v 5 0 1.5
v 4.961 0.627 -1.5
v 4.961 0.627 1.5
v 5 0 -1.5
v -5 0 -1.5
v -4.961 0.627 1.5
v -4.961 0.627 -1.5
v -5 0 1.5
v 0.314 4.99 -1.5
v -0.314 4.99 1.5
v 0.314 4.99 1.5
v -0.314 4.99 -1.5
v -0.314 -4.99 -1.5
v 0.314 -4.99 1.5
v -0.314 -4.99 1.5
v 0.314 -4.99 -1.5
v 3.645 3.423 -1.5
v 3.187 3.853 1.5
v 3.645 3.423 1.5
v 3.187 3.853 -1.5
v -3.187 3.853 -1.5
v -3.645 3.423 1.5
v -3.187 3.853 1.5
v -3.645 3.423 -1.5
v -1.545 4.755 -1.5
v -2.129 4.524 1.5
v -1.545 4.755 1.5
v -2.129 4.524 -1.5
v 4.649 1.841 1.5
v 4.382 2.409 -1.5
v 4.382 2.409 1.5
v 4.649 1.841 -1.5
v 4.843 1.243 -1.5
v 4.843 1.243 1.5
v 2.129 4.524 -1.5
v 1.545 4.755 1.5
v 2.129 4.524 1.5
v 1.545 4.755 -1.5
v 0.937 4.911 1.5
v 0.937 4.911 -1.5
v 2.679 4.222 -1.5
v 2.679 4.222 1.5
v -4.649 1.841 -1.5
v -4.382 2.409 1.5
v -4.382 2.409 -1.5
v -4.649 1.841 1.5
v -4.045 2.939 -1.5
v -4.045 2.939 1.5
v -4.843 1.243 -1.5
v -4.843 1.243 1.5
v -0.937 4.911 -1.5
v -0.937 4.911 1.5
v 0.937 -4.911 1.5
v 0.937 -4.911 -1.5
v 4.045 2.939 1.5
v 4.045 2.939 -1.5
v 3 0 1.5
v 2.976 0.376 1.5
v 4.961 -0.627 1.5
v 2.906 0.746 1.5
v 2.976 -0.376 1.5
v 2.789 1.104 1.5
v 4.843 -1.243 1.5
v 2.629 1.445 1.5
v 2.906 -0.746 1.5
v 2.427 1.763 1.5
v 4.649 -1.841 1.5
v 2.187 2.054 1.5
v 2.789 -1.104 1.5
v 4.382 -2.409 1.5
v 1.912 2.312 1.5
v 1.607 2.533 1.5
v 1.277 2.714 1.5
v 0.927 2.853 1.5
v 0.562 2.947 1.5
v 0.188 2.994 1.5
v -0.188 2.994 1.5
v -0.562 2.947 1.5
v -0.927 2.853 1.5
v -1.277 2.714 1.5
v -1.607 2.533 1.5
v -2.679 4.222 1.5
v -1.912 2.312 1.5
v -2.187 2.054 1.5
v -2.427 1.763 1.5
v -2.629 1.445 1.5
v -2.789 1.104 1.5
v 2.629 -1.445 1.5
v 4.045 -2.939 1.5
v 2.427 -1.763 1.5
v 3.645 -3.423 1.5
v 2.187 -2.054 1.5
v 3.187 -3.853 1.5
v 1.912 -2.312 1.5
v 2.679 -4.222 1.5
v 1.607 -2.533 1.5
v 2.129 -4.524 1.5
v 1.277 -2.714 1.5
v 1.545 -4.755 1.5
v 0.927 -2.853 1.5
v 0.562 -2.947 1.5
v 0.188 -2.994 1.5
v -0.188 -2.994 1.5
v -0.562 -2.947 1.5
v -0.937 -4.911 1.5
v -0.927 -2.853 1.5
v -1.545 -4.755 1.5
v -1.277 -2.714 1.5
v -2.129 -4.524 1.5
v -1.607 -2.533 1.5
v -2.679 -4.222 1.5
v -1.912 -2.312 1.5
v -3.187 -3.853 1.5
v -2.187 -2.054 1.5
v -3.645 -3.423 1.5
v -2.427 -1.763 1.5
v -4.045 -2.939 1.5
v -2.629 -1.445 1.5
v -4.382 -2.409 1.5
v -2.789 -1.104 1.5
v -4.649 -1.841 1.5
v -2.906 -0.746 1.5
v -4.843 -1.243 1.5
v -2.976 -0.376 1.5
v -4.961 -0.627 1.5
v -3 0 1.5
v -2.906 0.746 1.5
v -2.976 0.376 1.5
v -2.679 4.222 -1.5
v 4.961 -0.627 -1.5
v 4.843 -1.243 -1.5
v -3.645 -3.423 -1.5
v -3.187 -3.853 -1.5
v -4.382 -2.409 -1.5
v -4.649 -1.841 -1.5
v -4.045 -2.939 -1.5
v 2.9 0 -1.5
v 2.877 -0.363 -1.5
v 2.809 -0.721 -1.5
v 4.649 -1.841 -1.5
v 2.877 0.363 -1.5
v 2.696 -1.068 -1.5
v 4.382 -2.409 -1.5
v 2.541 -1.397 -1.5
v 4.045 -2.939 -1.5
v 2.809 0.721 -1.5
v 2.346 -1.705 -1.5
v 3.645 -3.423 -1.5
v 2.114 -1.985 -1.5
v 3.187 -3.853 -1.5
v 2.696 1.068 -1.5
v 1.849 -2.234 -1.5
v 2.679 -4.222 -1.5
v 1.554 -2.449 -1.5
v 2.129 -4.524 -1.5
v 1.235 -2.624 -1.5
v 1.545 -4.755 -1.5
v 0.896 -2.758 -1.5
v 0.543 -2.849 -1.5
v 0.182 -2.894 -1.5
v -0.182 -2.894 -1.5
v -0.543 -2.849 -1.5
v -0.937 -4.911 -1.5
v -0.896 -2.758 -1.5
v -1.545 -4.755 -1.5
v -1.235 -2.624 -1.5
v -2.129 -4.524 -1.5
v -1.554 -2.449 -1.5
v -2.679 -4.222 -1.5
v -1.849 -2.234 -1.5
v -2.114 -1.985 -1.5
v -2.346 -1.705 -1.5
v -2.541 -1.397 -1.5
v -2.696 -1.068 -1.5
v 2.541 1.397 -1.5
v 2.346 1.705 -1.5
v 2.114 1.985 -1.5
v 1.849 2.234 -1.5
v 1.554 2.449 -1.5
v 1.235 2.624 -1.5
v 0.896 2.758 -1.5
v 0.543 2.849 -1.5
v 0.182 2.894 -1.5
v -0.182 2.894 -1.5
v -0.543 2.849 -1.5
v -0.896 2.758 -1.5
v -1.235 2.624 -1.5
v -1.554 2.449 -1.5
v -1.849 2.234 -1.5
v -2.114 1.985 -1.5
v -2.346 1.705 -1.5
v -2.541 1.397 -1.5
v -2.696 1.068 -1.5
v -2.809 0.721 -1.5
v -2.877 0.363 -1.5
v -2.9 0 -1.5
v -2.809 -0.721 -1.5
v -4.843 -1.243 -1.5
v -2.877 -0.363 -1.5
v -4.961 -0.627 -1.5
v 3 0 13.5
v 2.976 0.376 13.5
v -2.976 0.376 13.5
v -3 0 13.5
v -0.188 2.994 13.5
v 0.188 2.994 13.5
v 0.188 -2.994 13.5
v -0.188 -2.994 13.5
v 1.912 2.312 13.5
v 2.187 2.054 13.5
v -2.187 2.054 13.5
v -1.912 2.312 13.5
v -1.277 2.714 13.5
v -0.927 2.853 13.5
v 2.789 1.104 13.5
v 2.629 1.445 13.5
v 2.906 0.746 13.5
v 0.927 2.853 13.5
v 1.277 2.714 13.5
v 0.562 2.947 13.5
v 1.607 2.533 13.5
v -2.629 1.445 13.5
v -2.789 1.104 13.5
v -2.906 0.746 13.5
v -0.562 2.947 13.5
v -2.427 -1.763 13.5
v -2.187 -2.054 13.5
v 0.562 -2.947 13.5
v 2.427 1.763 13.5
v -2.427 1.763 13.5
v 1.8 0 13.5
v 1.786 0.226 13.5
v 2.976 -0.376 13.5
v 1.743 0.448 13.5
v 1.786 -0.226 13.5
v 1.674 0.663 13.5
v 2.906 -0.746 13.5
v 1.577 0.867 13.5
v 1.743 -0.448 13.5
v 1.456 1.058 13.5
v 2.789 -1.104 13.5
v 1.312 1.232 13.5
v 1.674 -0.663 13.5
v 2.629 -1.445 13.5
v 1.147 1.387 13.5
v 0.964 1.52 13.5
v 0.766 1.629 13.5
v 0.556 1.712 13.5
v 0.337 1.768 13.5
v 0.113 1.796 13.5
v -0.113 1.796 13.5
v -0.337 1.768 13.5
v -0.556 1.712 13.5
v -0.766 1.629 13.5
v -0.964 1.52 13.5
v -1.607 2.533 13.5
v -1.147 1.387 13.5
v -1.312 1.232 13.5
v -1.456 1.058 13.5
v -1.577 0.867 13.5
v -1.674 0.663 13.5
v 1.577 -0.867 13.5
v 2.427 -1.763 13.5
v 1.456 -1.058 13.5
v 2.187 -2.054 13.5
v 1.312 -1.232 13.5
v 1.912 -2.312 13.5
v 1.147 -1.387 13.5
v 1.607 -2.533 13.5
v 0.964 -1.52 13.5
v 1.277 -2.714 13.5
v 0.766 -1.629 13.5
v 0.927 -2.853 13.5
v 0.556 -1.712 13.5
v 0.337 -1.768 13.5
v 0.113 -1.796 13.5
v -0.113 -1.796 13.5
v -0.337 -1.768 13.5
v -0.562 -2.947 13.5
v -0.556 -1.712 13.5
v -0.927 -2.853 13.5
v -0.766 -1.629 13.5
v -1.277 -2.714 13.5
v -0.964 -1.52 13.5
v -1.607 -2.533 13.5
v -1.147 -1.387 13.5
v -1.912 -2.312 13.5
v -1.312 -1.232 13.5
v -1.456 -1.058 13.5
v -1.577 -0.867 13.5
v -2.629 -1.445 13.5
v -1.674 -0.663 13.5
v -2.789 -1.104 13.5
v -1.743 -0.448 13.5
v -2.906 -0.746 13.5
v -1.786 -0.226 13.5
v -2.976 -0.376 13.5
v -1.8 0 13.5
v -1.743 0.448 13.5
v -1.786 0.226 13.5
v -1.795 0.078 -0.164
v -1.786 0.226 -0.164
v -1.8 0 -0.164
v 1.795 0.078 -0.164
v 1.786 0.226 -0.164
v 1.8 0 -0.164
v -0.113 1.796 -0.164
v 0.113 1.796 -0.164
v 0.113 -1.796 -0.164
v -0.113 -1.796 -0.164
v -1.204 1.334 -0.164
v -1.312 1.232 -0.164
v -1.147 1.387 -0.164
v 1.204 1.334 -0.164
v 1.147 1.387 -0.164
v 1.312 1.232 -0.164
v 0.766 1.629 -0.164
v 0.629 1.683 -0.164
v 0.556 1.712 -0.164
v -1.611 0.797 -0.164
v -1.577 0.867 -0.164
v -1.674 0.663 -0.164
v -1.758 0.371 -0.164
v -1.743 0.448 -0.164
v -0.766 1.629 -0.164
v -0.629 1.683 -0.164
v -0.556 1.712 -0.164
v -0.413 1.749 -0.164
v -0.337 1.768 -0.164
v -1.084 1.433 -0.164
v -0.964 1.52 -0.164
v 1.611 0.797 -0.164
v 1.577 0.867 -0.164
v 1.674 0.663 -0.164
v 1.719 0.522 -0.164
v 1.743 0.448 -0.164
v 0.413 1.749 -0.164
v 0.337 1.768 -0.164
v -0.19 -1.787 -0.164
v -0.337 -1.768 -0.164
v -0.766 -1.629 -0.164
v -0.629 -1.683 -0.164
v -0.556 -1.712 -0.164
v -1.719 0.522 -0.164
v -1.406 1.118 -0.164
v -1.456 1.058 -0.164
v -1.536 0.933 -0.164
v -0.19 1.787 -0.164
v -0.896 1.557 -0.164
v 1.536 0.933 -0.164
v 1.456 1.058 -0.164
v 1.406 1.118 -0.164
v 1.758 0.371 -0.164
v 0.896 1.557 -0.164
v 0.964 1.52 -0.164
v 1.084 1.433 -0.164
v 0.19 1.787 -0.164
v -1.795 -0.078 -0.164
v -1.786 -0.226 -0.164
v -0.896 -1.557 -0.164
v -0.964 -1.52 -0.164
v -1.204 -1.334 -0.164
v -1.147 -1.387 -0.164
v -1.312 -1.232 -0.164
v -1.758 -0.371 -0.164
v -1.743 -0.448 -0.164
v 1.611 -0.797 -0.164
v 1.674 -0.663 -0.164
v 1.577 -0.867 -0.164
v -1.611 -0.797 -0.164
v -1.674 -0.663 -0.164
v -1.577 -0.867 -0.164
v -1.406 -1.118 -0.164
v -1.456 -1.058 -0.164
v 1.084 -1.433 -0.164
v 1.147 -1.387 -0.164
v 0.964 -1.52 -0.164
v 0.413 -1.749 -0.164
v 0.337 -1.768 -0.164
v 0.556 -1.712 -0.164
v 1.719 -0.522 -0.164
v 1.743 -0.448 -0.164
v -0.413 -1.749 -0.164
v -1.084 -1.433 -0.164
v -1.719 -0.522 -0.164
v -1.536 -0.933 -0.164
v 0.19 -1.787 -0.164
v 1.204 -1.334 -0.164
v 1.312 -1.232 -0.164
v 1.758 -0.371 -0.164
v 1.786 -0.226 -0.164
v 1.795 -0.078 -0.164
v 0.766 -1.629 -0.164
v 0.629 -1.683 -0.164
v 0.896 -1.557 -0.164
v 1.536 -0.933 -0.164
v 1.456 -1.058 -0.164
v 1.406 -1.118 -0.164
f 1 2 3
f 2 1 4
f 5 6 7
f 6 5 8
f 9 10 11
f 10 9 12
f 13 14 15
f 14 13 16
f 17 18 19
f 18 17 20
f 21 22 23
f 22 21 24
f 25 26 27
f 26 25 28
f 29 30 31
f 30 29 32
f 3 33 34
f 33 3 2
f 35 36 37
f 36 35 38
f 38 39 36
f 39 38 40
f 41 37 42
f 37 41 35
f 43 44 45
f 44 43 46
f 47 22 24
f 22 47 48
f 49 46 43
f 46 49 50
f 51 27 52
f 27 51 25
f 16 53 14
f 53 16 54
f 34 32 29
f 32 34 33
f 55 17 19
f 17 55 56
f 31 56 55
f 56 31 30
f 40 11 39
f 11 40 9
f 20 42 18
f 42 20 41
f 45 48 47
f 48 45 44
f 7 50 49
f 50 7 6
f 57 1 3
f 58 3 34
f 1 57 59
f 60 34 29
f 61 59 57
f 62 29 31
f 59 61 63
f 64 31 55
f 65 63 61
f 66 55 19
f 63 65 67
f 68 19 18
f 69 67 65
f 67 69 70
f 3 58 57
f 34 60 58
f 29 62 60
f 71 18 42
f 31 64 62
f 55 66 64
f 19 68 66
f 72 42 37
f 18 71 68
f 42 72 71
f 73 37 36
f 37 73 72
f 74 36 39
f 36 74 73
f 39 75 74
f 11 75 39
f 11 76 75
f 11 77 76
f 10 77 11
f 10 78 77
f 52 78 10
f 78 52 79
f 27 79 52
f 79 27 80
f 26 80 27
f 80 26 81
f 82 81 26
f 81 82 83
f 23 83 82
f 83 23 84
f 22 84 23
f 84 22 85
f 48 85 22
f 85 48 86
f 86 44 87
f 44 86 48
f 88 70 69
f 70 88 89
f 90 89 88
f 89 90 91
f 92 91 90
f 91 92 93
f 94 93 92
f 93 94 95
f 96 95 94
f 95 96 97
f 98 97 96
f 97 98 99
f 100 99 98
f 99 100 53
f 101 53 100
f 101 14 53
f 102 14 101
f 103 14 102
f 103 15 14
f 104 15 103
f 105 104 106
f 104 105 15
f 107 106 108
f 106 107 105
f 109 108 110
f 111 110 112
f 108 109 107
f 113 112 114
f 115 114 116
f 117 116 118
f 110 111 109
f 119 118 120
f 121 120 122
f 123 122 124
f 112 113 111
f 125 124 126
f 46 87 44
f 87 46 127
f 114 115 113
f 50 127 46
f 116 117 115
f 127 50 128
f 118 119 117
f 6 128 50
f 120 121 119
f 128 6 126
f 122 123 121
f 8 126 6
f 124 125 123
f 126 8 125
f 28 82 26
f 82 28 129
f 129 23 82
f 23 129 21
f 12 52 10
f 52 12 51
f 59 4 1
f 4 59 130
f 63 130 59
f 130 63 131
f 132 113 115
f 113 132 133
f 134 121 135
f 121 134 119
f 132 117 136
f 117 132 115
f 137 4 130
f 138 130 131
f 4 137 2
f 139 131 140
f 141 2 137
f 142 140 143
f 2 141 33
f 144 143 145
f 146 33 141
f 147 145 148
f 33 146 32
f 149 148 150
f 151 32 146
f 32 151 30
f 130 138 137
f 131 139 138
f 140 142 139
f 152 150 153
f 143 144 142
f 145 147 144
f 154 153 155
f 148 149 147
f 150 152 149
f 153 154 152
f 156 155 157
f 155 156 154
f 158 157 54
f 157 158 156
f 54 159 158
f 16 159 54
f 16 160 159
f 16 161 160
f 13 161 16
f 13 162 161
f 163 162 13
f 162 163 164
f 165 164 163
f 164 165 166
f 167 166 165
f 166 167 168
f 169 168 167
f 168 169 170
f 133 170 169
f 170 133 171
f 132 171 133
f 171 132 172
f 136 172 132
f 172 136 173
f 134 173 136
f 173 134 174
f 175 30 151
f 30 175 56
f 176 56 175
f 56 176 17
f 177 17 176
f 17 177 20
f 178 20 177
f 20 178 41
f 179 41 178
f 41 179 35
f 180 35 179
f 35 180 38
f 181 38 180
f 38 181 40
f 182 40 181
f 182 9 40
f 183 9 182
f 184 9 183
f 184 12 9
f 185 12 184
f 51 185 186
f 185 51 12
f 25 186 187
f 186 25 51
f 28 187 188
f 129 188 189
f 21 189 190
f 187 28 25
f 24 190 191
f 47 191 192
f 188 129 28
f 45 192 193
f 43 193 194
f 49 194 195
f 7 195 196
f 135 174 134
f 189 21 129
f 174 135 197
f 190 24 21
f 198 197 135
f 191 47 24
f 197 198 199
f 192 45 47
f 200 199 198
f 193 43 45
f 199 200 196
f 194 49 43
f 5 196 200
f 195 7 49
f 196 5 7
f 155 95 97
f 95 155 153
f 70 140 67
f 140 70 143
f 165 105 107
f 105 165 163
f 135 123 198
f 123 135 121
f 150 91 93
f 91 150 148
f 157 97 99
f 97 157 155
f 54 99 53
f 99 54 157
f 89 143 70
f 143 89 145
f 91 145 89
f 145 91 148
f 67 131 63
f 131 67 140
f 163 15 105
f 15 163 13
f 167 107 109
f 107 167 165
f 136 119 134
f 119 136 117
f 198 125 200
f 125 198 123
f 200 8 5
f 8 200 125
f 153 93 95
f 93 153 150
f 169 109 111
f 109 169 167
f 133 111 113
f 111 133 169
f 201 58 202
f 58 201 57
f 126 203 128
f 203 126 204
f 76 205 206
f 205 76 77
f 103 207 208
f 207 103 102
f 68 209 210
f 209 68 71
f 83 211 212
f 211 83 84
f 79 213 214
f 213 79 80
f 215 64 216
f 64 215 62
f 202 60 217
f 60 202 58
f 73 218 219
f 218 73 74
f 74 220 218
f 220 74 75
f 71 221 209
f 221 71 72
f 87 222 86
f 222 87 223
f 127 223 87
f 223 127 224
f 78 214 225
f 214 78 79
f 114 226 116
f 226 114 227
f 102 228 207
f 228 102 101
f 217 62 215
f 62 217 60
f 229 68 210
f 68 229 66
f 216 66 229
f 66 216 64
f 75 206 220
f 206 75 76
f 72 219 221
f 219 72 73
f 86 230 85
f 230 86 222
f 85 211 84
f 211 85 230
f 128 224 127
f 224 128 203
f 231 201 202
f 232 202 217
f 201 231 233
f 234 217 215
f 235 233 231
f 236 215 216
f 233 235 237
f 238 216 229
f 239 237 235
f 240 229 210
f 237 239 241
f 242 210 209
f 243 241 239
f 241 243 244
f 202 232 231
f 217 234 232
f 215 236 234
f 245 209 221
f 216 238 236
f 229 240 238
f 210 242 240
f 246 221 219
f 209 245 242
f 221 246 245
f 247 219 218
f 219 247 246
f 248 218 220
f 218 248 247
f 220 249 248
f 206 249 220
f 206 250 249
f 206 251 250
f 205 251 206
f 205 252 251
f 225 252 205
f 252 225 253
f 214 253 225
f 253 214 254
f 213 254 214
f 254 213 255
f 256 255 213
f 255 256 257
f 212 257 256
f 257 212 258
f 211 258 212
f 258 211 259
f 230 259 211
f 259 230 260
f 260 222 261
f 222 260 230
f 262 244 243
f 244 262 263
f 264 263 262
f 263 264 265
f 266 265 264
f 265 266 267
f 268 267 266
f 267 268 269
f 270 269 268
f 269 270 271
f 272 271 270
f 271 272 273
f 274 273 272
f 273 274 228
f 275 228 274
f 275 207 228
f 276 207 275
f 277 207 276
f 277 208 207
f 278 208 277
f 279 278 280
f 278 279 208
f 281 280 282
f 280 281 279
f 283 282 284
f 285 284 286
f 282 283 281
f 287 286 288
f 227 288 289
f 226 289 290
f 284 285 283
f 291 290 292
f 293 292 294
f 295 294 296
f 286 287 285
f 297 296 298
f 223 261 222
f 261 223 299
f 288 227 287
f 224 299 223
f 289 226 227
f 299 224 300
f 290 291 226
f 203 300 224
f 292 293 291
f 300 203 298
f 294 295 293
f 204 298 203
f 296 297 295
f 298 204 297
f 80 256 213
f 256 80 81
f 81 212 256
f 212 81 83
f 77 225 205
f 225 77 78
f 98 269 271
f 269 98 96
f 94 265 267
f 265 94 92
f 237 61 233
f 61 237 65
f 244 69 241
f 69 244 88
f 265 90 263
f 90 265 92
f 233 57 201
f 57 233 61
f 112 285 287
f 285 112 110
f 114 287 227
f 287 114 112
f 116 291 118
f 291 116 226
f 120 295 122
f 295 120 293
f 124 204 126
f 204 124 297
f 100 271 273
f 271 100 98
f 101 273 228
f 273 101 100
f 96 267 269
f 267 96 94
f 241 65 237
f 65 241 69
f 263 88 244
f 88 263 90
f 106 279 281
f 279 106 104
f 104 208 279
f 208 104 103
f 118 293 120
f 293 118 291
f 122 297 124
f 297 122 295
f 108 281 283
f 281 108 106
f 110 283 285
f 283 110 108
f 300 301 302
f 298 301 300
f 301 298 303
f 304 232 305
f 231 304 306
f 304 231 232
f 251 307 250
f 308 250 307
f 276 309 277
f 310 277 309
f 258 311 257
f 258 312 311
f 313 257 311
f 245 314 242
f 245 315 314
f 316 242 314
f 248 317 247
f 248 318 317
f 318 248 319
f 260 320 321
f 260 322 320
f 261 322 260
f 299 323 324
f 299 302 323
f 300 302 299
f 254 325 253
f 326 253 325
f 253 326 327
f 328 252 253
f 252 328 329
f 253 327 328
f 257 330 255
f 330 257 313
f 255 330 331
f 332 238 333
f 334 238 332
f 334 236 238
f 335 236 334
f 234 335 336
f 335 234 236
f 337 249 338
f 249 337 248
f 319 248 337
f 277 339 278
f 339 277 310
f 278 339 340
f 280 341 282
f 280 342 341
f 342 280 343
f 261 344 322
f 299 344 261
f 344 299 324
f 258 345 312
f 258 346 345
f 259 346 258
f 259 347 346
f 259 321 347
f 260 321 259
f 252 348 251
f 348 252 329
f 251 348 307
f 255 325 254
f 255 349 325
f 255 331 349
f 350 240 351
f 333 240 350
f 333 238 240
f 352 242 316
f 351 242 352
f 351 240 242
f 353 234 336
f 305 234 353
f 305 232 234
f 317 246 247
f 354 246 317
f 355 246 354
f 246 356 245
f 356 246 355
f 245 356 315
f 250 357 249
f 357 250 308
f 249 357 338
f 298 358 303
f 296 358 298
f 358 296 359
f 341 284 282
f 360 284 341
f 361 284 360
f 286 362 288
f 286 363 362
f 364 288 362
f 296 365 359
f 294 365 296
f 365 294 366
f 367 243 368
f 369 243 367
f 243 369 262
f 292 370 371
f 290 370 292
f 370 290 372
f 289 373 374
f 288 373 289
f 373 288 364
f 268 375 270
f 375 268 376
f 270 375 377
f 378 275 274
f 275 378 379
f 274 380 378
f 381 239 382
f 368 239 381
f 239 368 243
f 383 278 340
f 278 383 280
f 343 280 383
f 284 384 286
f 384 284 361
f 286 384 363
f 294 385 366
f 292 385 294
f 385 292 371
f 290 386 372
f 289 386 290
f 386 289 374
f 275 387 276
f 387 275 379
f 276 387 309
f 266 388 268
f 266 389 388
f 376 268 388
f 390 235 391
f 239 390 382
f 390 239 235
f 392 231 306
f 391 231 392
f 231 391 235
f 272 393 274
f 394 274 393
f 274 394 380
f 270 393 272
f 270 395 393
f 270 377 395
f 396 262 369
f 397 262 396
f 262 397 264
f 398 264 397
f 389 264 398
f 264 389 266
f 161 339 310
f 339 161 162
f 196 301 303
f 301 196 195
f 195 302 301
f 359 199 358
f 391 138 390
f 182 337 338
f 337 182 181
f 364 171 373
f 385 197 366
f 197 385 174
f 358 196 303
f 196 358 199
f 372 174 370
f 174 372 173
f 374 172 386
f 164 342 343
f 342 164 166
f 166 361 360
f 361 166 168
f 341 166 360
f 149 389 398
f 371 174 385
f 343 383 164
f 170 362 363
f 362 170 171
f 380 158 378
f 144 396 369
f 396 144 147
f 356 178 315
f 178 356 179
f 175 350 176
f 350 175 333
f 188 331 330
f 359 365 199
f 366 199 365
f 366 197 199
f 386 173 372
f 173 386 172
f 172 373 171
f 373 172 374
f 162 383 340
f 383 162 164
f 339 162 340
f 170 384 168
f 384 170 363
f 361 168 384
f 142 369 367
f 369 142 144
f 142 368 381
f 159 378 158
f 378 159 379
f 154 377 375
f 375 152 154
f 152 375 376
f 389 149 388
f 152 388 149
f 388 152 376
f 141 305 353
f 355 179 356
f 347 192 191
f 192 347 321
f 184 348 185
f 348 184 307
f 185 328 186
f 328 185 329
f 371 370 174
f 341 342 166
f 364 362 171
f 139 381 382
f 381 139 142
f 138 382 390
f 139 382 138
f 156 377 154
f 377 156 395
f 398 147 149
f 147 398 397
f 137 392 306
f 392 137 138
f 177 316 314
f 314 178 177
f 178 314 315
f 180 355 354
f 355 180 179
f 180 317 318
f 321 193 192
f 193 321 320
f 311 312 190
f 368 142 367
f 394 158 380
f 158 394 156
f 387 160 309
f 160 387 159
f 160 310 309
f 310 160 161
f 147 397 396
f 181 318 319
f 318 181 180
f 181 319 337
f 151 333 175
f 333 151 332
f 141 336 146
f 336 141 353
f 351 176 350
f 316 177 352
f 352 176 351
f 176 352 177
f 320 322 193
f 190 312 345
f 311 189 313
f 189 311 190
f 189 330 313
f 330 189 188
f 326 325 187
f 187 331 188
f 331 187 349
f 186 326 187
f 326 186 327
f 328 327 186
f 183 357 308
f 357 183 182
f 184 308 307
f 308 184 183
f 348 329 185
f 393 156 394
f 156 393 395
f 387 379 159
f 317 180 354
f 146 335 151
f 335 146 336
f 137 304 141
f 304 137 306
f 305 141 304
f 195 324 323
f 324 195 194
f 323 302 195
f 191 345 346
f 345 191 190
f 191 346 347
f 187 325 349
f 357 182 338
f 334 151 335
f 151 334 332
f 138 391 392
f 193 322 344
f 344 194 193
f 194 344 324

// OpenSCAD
$fn = 50;


difference() {
	union() {
		translate(v = [0, 0, -1.5000000000]) {
			cylinder(h = 3, r = 5.0000000000);
		}
		translate(v = [0, 0, -1.5000000000]) {
			cylinder(h = 15, r = 3.0000000000);
		}
	}
	union() {
		translate(v = [0, 0, -1.5000000000]) {
			rotate(a = [0, 180, 0]) {
				difference() {
					union() {
						translate(v = [0, 0, -15.0000000000]) {
							cylinder(h = 15, r = 1.5000000000);
						}
						translate(v = [0, 0, -15.0000000000]) {
							cylinder(h = 15, r = 1.8000000000);
						}
						translate(v = [0, 0, -1.7000000000]) {
							cylinder(h = 1.7000000000, r1 = 1.5000000000, r2 = 2.9000000000);
						}
						translate(v = [0, 0, -15.0000000000]) {
							cylinder(h = 15, r = 1.5000000000);
						}
					}
					union();
				}
			}
		}
		translate(v = [0, 0, -50.0000000000]) {
			cylinder(h = 100, r = 1.5000000000);
		}
	}
}
